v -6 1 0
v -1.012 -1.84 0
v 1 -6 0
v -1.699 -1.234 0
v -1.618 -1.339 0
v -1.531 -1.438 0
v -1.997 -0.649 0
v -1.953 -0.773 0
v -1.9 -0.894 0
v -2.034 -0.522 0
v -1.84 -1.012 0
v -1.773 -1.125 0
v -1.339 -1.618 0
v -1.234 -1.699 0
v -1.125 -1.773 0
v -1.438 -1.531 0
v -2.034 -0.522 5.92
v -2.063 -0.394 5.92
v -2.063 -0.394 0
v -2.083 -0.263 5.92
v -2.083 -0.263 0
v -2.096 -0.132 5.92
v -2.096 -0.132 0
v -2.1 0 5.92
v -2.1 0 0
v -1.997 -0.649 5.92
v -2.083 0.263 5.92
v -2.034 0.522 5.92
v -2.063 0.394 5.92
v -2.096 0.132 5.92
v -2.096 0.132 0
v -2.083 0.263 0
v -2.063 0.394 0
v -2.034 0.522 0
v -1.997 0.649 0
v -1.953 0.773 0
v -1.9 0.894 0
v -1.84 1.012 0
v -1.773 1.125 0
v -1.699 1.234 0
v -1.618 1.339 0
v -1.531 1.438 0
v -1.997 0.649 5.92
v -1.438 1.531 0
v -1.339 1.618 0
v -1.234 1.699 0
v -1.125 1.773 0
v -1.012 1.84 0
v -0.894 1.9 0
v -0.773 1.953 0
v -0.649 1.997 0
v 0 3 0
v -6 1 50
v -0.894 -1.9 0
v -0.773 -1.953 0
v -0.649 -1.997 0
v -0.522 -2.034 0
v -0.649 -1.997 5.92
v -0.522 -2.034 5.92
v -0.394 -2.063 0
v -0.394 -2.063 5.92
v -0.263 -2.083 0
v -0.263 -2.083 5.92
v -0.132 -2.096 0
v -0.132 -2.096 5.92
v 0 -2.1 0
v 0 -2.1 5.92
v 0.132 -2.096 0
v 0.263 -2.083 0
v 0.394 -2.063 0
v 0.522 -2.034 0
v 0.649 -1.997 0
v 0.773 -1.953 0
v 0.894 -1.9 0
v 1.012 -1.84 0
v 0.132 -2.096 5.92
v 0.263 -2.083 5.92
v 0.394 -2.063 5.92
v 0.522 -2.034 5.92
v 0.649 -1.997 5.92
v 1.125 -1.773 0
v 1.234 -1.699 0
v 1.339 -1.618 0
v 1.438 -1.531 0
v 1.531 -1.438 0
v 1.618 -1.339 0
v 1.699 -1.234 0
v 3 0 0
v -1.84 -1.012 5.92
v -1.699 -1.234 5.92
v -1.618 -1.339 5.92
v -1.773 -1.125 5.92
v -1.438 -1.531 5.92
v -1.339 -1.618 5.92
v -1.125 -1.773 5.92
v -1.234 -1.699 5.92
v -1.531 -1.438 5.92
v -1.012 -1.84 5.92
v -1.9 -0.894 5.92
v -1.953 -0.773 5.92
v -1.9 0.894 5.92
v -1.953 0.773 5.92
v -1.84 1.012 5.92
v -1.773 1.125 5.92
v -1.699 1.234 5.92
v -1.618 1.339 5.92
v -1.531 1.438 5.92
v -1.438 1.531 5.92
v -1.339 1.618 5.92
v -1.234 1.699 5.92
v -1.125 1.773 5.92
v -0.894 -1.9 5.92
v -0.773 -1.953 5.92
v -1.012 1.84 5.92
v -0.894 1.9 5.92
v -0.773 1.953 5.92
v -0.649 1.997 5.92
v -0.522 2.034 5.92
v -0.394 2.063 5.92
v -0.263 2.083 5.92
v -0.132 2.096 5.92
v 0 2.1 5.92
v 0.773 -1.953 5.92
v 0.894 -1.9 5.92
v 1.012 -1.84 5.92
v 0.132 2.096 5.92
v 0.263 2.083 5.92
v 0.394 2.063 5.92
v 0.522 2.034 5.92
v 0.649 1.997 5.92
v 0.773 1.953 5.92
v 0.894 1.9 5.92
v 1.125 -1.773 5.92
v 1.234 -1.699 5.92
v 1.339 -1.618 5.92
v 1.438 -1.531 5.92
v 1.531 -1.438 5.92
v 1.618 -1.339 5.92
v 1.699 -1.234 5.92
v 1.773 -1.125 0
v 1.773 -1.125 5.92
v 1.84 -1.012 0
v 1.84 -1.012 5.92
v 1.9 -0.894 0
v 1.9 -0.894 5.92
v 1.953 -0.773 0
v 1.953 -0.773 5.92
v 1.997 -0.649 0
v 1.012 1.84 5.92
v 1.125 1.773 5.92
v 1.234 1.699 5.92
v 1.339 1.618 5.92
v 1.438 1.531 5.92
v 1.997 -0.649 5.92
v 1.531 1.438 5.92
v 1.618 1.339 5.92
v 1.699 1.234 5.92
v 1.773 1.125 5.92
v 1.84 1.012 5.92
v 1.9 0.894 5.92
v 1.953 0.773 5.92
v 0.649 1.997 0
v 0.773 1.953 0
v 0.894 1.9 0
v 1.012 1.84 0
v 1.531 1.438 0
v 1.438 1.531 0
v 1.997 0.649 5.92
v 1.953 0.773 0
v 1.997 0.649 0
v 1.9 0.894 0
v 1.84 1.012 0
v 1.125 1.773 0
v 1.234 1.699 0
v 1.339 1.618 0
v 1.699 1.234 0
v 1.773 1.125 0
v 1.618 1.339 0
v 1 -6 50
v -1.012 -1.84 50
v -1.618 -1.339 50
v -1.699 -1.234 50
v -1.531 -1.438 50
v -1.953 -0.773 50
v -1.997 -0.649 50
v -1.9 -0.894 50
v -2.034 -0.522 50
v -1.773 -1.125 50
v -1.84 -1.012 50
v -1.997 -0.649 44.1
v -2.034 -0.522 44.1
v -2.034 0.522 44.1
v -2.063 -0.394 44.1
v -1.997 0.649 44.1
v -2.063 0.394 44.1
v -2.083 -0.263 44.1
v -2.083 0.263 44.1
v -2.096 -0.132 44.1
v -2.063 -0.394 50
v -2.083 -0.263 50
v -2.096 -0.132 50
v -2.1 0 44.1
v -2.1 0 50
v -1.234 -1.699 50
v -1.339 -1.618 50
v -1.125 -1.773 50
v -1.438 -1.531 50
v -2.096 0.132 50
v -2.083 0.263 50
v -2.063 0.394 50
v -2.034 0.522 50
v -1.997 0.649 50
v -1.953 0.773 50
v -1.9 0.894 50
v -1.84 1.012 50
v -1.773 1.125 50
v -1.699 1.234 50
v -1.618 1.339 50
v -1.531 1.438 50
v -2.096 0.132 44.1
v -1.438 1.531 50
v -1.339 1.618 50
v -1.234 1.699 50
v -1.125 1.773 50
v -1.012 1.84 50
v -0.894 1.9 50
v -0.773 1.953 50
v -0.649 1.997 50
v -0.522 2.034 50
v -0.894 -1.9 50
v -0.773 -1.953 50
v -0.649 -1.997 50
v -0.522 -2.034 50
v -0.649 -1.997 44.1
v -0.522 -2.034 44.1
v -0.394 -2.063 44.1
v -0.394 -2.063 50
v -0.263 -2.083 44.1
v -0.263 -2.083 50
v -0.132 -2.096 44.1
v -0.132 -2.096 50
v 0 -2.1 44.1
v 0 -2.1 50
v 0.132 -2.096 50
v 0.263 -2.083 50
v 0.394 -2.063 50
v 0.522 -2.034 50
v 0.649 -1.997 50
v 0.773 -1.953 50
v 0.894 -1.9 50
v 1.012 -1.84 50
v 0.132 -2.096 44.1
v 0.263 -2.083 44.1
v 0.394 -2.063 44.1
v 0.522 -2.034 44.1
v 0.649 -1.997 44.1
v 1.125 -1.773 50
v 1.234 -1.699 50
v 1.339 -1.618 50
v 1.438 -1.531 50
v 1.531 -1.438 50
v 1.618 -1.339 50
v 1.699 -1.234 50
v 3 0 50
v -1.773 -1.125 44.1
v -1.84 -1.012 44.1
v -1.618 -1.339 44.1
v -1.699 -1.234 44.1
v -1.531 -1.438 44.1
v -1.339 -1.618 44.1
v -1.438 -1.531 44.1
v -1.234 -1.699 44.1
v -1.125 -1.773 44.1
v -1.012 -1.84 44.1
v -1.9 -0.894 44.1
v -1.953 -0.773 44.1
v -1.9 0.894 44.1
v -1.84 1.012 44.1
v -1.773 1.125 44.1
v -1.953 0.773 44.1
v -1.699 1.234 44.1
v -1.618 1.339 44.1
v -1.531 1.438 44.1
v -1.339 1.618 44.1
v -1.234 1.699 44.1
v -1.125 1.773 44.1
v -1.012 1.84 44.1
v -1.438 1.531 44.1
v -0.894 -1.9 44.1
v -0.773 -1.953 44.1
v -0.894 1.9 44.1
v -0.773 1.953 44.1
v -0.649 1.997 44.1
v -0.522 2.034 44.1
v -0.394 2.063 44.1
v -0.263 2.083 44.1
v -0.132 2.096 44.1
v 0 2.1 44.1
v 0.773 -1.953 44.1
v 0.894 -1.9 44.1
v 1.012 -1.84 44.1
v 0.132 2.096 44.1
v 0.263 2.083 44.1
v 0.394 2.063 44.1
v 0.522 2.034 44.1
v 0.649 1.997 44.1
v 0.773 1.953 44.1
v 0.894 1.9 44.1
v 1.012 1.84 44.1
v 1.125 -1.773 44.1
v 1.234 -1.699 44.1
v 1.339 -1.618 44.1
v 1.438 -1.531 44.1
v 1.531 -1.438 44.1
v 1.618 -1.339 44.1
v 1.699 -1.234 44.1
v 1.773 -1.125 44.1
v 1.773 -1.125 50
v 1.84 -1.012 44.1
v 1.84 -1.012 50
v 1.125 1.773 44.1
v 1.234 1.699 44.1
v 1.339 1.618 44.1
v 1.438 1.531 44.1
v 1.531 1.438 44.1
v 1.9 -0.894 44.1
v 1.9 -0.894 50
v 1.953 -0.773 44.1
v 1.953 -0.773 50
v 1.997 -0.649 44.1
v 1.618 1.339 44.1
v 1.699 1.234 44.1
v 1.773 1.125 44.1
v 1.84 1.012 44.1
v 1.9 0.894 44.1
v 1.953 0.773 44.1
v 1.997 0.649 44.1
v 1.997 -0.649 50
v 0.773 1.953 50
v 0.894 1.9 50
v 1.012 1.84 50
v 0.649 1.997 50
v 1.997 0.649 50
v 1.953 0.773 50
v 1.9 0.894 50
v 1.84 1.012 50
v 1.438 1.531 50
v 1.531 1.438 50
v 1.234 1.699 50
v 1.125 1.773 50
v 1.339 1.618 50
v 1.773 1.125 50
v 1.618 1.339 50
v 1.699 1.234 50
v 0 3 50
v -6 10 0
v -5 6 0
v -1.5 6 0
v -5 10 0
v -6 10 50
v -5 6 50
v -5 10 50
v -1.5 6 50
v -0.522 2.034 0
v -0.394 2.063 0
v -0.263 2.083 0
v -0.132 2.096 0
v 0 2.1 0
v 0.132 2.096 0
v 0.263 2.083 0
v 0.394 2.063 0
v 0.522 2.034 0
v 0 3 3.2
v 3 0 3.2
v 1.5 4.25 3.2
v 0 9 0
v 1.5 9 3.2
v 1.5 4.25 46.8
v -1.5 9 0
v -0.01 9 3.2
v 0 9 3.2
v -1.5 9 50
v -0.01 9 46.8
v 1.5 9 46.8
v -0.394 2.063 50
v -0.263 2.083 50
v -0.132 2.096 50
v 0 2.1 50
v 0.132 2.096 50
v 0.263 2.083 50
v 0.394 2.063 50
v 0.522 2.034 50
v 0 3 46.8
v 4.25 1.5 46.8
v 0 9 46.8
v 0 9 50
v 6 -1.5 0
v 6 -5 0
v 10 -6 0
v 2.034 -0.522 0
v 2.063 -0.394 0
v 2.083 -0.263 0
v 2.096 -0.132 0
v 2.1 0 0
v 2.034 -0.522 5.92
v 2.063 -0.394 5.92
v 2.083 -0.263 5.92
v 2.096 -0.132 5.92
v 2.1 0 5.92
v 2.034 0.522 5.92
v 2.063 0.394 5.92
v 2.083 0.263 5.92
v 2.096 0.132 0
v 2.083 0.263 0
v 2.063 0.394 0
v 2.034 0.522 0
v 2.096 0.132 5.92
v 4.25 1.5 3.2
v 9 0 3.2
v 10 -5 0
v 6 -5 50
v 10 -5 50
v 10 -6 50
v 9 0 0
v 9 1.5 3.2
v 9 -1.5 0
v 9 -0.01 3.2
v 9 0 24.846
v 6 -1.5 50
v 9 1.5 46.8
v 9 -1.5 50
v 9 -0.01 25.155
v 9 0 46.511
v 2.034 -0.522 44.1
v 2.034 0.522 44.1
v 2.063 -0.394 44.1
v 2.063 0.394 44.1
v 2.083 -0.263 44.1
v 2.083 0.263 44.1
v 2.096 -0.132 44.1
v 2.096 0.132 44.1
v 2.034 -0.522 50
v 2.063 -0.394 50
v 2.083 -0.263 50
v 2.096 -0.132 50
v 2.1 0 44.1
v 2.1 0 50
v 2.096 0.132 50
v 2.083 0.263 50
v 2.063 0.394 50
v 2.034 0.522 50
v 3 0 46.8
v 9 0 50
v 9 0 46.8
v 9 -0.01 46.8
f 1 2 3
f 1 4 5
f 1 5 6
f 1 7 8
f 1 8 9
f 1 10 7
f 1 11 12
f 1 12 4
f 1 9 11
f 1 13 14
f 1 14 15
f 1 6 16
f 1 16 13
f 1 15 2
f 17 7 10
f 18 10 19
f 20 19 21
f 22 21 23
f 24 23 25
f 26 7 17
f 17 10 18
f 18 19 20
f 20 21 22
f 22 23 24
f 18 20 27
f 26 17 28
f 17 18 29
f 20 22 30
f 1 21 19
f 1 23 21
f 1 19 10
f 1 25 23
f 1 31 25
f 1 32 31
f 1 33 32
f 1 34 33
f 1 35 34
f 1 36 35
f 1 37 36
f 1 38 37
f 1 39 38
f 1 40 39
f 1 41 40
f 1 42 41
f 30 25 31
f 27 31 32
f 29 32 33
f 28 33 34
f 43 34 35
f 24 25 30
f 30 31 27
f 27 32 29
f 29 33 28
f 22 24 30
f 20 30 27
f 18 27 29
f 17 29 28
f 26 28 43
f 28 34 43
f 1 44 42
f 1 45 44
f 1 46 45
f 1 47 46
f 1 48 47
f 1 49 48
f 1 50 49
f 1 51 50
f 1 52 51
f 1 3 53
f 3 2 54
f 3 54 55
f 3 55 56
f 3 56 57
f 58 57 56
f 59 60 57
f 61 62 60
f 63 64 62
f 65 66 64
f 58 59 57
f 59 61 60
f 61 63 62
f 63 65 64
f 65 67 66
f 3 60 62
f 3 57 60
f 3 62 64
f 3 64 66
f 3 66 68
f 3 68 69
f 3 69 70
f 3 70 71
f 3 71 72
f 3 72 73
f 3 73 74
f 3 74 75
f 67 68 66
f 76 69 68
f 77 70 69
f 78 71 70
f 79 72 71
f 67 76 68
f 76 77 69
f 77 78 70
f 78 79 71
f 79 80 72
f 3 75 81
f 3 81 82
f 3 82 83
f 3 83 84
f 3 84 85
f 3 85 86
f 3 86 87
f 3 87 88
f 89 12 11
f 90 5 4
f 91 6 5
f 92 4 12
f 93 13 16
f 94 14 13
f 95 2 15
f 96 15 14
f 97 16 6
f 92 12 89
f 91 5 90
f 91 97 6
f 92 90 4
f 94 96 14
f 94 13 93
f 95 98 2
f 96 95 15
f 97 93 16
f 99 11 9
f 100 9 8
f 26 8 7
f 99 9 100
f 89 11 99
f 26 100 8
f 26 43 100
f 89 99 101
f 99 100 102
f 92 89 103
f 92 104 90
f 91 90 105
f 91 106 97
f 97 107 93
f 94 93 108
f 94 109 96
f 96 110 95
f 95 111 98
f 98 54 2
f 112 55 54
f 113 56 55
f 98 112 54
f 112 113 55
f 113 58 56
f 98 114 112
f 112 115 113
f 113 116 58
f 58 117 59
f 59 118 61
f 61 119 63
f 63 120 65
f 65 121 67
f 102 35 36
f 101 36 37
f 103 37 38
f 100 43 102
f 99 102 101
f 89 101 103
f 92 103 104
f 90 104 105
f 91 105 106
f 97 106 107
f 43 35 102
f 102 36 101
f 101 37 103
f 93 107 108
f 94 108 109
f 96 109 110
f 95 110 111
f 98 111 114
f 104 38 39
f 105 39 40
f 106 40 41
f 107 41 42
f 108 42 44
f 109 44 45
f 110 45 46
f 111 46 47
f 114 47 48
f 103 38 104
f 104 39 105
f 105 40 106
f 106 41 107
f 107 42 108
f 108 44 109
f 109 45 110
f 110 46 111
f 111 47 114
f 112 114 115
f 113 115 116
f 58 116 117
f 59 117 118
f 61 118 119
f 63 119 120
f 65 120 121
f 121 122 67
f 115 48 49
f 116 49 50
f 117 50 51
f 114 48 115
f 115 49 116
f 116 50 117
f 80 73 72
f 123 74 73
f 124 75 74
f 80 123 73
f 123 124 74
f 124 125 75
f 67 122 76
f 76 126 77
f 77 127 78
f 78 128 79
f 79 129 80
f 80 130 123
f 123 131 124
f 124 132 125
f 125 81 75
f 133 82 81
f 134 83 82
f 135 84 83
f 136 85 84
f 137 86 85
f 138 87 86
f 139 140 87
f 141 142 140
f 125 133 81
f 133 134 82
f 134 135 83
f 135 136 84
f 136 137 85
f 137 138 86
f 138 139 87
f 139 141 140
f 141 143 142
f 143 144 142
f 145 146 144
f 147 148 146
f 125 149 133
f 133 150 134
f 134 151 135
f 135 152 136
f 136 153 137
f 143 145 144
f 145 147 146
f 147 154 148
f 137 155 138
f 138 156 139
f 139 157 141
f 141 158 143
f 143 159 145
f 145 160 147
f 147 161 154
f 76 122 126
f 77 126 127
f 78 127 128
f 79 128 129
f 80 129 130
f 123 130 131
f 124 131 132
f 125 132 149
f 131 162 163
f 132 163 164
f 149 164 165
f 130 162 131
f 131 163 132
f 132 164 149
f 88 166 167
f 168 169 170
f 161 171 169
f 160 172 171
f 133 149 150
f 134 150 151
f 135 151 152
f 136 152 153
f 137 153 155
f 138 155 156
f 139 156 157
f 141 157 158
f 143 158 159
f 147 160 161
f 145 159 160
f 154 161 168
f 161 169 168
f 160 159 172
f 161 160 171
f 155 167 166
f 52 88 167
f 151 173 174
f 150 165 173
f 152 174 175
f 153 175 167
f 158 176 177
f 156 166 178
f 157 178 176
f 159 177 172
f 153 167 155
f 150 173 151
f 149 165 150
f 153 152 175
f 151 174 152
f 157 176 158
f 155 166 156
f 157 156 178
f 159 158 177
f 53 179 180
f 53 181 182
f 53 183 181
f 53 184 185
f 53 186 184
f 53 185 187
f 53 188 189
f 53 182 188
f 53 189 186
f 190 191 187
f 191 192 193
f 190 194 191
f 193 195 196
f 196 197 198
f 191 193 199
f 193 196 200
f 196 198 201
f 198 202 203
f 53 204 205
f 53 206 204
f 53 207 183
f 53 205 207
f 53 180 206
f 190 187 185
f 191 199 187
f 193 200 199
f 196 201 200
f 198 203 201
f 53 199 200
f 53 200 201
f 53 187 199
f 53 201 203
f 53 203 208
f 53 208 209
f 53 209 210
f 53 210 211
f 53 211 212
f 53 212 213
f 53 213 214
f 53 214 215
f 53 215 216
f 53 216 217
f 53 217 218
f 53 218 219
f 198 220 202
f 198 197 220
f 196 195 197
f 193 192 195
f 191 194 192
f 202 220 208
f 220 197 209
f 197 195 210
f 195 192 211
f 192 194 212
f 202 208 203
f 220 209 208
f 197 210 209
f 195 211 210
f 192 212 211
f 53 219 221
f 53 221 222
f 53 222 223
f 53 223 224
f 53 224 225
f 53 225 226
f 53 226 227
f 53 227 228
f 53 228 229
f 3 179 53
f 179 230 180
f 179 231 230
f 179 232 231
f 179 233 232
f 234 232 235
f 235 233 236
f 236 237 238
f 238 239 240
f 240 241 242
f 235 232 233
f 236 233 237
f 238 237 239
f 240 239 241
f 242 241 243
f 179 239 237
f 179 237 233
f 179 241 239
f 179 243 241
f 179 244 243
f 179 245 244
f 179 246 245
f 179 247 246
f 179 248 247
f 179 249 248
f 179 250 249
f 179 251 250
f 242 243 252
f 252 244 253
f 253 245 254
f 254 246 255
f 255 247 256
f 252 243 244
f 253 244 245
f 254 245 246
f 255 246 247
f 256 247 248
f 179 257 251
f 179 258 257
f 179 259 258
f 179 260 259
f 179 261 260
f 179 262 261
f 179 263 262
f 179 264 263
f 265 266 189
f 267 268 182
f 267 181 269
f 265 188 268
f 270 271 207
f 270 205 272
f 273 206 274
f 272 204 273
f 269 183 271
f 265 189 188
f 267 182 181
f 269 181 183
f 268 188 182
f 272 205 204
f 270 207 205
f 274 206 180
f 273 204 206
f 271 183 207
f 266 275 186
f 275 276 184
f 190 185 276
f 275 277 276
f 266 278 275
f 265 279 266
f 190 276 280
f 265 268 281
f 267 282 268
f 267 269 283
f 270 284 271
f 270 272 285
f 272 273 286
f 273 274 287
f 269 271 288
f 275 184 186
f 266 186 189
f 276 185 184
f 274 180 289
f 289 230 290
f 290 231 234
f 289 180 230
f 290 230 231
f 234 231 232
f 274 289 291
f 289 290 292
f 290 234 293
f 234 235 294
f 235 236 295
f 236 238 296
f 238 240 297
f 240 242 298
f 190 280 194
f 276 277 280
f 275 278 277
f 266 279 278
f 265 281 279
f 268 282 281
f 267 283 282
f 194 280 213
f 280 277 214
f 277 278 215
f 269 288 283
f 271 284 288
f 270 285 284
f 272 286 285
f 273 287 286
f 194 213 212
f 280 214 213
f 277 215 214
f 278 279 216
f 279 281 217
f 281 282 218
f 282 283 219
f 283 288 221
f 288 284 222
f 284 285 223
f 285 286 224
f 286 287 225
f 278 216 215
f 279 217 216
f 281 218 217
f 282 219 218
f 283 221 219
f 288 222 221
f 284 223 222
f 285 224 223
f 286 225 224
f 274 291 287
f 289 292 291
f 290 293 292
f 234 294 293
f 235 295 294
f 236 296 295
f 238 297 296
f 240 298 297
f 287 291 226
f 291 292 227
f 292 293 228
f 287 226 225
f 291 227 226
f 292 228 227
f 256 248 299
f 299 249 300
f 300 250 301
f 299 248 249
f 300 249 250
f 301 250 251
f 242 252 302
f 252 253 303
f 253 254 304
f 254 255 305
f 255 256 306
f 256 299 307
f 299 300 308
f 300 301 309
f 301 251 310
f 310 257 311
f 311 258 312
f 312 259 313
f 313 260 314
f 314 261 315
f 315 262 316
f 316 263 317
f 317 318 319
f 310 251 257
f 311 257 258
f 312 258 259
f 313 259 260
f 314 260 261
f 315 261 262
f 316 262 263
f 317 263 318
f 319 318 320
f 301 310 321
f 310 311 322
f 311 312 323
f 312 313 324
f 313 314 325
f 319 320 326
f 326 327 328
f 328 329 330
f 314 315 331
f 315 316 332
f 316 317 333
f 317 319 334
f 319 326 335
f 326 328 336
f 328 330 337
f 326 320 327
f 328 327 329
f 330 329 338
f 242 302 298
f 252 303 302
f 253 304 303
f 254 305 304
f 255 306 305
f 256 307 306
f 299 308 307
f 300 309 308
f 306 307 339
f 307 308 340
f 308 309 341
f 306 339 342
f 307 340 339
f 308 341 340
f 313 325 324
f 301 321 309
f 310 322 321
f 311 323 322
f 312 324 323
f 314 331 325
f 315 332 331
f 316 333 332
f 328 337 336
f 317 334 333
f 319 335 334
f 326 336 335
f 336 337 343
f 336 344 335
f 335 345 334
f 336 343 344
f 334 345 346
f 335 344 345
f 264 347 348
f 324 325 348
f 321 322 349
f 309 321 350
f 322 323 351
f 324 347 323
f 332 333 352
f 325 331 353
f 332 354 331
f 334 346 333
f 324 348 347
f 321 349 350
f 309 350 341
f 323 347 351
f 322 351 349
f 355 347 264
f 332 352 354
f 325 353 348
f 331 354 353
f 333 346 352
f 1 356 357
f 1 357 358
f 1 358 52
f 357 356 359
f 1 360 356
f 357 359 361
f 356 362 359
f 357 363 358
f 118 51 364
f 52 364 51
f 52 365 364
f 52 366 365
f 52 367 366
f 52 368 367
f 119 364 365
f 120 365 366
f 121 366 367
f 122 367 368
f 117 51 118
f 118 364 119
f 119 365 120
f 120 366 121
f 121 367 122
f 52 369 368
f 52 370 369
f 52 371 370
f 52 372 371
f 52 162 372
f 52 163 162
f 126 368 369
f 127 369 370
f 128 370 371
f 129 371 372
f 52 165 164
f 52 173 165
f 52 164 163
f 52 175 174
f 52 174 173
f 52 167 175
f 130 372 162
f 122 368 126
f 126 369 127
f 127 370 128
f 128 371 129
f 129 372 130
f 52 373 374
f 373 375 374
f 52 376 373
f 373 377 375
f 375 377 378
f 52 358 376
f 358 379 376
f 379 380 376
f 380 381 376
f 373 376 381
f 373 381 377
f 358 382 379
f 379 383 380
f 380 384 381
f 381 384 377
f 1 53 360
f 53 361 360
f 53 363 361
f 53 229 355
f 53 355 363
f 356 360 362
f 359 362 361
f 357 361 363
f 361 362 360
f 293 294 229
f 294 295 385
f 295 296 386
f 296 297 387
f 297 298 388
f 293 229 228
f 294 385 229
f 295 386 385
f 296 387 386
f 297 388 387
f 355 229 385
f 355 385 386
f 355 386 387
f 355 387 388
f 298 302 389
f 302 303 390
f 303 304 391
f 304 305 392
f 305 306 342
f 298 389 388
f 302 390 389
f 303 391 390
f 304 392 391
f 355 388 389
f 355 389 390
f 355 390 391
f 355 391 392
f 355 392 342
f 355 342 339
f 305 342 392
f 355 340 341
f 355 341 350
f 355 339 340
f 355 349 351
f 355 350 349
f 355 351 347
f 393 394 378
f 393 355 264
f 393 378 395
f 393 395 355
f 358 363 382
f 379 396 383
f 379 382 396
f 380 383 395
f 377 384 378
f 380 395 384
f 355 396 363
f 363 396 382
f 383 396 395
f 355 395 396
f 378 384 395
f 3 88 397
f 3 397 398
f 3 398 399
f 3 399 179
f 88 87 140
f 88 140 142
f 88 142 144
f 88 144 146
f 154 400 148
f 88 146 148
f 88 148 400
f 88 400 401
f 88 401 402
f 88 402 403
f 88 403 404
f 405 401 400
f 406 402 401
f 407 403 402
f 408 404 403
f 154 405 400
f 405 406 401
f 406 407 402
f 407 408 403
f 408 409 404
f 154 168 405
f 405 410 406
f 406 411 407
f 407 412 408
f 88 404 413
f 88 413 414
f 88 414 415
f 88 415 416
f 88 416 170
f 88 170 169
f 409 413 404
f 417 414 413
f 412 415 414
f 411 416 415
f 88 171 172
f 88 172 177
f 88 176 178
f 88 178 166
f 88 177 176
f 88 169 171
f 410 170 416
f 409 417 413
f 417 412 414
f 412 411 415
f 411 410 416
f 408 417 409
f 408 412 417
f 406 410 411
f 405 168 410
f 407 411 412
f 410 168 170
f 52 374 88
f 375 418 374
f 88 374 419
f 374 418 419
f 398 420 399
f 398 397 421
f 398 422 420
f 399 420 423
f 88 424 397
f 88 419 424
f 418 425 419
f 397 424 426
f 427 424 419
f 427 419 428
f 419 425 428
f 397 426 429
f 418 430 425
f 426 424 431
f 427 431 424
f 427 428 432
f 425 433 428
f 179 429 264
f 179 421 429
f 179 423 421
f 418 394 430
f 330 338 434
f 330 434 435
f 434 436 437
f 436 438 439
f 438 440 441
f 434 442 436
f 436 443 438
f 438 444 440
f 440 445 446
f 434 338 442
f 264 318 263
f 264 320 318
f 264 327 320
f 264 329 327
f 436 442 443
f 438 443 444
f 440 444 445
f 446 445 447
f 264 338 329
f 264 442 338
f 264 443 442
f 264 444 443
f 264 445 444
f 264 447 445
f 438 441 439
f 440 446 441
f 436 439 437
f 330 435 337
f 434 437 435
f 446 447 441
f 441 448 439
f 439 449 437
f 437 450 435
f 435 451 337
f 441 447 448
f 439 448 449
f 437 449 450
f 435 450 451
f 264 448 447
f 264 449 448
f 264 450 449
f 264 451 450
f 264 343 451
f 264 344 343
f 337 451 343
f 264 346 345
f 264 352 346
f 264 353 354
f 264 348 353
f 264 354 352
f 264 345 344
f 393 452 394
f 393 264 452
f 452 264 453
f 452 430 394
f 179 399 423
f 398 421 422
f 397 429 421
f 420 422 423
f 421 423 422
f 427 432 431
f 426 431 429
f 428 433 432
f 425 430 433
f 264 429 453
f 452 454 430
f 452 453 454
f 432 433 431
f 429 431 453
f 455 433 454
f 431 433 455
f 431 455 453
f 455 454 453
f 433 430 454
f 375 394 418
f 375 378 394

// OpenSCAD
// file: Kante.scad
$fn = 100;
tiny = 0.01;


/*

module stl_model() {
  import("Kante_5cm.stl");
}

color("blue") translate([30,0,0]) stl_model();
*/


/*************************************************
 * hoehe in mm
 ************************************************/

module Kante(hoehe) {
  x1 = 10;   // #1. unten rechts
  y1 = -6;   // #1.
  y2 = -5;   // #2
  x2 = +6;   // #3
  y3 = -1.5; // #4
  x3 = +9;   // #5
  y4 = +0;   // #6
  x4 = +3;   // #7
  y5 = +1;   // #8
  //--
  y6 = +1.5;
  x5 = 4.25;
  y7 = 3;
  
  dh = 3   + 0.2; // Toleranz
  h1 = hoehe - 2*dh;  

  h2 = 5.7 + 0.2; // Toleranz Innenloch
  d2 = 4.0 + 0.2; // Toleranz Innenloch

  color("red")
  difference() {
     union() {
        //color("red")
        linear_extrude(height=hoehe)
        polygon(points=[
          [x1,y1], // 10,-6
          [x1,y2], // 10,-5
          [x2,y2], //  6,-5
          [x2,y3], //  6,-1.5 
          [x3,y3], //  9,-1.5
          [x3,y4], //  9,0
          [x4,y4], //  3,0
          // copies from here.
          [y4,x4], //  0,3
          [y4,x3], //  0,9
          [y3,x3], // -1.5,9
          [y3,x2], // -1.5,6
          [y2,x2], //  -5,6
          [y2,x1], //  -5,10
          [y1,x1], //  -6,10
          [y1,y5], //  -6,1
          [y5,y1], //  -6,1
          [x1,y1]  // 10,-6
          ]); // polygon
        translate([0,0,dh])
        linear_extrude(height=h1)
        polygon(points=[
          [x3,y4 - tiny], // 9,-0
          [x3,y6], // 9,1.5
          [x5,y6], // 4,1.5
          [y6,x5], // 1.5,4
          [y6,x3], // 1.5,9
          [y4 - tiny,x3], // -0,9
          [y4 - tiny,y7], // -0,3
          [y7,y4 - tiny], // 3,-0
          [x3,y4 - tiny], // 9,-0
          ]); // polygon
        } // union

     translate([0,0,-tiny])    cylinder(h=h2+3*tiny, d=d2); // Loch unten
     translate([0,0,hoehe-h2]) cylinder(h=h2+2*tiny, d=d2); // Loch oben
  } // difference
}
// main file
use <Kante.scad>
$fn = 100;

Kante(50); // hoehe in mm
